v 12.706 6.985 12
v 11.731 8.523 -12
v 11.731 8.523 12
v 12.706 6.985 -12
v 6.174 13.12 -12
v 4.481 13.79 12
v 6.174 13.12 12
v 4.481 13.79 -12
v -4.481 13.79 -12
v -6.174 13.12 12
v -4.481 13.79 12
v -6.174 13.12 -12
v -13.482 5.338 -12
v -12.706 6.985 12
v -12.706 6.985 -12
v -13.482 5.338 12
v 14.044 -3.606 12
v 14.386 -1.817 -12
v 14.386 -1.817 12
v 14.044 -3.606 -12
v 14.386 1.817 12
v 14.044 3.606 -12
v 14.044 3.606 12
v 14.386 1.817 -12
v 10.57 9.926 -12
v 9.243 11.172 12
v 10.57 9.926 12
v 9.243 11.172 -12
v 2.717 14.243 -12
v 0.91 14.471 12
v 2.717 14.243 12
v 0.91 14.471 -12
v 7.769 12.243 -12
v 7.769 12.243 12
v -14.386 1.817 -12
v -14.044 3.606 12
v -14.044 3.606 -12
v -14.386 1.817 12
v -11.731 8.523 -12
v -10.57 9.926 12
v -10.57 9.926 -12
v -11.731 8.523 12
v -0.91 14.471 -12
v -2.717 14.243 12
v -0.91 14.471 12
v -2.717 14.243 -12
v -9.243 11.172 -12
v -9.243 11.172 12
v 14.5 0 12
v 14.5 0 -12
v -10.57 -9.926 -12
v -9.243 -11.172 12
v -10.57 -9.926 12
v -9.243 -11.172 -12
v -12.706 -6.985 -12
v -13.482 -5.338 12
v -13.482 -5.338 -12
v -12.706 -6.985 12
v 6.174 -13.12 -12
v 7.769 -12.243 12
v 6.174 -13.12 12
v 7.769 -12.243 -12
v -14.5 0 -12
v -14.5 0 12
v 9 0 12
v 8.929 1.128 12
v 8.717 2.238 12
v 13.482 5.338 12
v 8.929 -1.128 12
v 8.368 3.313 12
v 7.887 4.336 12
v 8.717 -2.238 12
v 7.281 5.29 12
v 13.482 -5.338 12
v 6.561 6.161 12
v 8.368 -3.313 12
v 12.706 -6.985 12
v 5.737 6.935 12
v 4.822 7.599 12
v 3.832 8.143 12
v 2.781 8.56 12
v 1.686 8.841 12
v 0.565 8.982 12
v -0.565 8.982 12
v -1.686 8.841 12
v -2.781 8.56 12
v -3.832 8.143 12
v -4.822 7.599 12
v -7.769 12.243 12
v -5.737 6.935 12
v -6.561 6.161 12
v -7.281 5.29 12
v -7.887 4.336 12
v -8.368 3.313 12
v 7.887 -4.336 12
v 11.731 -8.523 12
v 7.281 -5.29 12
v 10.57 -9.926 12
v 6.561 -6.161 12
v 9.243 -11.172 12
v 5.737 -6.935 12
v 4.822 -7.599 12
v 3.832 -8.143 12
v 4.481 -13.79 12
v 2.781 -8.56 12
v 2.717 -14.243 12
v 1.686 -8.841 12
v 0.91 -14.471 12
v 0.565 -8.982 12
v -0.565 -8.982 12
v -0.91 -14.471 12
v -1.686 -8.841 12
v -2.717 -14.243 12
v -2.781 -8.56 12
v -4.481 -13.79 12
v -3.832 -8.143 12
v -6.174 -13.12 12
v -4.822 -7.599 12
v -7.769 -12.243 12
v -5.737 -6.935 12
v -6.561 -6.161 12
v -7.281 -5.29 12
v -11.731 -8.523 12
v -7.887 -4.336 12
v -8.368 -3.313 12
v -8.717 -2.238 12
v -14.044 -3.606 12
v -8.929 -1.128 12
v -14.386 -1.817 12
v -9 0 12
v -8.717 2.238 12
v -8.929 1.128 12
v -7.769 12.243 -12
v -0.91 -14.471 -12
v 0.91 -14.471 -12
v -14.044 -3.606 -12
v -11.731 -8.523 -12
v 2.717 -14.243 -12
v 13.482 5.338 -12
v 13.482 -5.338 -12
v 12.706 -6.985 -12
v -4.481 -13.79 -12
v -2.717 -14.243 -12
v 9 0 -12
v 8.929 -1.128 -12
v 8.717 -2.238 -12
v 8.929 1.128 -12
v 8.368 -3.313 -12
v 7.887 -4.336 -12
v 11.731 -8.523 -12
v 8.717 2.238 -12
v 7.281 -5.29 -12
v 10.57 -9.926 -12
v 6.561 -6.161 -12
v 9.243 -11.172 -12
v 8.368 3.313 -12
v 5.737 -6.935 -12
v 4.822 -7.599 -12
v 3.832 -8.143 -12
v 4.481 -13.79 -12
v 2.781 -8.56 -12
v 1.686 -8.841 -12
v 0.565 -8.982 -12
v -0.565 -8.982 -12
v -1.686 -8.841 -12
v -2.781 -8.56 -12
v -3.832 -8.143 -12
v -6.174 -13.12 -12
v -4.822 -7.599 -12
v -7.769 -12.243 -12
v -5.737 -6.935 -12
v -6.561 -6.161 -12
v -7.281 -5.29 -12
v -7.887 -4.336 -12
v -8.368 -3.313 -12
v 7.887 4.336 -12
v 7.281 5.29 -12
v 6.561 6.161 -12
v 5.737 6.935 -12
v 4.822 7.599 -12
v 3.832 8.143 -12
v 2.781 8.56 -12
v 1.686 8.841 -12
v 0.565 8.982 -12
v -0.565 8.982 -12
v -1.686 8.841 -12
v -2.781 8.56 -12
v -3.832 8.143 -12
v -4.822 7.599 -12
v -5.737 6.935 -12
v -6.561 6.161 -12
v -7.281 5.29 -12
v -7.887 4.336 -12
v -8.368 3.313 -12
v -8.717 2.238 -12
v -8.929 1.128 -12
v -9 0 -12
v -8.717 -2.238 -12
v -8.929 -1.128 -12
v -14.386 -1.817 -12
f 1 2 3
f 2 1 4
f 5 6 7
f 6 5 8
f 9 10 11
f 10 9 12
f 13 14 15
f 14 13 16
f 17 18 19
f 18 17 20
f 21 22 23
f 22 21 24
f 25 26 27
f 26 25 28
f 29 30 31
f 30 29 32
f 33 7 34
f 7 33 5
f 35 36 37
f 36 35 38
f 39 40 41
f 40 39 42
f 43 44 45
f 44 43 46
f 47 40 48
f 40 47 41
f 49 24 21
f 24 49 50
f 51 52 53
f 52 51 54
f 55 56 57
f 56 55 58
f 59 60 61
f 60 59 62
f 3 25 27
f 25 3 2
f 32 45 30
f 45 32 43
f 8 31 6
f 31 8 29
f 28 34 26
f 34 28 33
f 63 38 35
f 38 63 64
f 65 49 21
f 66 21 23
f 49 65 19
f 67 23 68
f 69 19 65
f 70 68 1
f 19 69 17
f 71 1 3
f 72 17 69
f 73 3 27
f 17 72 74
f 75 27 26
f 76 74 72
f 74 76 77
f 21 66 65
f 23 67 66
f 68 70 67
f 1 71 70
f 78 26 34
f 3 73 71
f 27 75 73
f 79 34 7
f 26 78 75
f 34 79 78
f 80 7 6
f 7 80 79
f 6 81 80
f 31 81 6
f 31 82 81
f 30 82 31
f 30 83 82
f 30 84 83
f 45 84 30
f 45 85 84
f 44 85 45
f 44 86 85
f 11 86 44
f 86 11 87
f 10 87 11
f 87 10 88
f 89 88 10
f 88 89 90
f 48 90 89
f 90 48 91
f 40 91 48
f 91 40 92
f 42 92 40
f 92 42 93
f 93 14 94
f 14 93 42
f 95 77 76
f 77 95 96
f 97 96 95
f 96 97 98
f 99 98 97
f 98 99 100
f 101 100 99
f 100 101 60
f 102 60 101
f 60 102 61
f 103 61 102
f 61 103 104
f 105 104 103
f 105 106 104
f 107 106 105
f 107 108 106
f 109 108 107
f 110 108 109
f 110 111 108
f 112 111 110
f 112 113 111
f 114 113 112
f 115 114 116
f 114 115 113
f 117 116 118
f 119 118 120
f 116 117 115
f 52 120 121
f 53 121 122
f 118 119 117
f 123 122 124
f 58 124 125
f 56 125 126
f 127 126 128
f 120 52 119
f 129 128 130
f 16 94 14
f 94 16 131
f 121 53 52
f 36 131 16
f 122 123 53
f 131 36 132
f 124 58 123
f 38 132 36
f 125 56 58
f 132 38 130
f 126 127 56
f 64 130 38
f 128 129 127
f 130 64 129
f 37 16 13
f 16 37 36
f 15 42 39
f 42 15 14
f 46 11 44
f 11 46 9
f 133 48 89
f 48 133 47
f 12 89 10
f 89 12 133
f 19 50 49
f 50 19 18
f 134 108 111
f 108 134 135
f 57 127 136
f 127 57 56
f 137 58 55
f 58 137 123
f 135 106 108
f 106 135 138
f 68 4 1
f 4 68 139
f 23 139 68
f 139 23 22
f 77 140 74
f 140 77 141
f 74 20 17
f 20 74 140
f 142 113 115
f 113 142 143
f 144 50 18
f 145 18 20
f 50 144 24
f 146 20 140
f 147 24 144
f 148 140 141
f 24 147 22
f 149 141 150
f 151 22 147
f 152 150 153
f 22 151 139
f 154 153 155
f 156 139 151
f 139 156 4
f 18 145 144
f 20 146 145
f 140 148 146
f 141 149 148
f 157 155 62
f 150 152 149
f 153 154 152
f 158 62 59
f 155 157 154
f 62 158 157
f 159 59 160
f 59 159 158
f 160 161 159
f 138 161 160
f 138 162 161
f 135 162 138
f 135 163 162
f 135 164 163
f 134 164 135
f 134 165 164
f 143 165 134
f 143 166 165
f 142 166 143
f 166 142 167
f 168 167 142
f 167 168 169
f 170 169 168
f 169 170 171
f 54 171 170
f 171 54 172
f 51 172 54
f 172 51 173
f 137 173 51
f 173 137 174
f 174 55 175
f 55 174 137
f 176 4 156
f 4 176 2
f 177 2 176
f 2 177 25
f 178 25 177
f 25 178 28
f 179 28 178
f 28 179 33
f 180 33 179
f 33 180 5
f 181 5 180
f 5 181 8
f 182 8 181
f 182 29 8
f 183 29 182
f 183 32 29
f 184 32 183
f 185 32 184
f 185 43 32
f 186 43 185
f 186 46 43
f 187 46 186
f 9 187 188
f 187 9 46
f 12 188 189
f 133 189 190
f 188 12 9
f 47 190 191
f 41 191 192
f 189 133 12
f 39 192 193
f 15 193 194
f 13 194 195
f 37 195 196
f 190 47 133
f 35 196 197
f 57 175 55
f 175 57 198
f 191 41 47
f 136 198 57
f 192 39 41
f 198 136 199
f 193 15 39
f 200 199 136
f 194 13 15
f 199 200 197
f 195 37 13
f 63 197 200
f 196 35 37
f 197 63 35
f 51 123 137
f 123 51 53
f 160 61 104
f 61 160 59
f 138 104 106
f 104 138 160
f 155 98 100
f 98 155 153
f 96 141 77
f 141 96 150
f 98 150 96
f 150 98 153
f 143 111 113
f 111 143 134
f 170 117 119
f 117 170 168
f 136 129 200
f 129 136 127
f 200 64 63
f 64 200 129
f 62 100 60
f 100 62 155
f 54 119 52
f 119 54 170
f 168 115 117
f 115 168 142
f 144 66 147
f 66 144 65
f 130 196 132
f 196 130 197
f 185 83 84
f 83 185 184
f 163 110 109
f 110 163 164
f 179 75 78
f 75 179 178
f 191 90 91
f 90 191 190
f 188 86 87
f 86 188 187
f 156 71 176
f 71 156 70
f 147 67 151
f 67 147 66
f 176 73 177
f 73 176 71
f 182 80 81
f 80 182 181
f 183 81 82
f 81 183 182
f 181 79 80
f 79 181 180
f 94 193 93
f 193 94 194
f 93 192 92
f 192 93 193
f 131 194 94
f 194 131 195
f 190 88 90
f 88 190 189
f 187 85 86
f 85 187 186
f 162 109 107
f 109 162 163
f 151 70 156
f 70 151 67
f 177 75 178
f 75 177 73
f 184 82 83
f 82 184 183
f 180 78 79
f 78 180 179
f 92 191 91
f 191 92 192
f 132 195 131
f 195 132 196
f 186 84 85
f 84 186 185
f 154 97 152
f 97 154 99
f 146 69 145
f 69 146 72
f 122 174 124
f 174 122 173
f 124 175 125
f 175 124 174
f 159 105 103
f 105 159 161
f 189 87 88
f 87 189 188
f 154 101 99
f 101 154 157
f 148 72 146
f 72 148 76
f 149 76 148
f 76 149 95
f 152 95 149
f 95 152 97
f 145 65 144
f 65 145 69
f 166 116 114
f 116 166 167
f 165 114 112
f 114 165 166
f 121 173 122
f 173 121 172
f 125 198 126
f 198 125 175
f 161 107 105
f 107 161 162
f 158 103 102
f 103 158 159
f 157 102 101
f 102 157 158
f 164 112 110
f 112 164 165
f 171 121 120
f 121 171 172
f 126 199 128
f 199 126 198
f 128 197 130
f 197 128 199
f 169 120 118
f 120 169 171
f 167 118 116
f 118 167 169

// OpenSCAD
$fn = 50;


difference() {
	union() {
		translate(v = [0, 0, -12.0000000000]) {
			cylinder(h = 24, r = 14.5000000000);
		}
	}
	union() {
		translate(v = [0, 0, -100.0000000000]) {
			cylinder(h = 200, r = 9);
		}
	}
}
